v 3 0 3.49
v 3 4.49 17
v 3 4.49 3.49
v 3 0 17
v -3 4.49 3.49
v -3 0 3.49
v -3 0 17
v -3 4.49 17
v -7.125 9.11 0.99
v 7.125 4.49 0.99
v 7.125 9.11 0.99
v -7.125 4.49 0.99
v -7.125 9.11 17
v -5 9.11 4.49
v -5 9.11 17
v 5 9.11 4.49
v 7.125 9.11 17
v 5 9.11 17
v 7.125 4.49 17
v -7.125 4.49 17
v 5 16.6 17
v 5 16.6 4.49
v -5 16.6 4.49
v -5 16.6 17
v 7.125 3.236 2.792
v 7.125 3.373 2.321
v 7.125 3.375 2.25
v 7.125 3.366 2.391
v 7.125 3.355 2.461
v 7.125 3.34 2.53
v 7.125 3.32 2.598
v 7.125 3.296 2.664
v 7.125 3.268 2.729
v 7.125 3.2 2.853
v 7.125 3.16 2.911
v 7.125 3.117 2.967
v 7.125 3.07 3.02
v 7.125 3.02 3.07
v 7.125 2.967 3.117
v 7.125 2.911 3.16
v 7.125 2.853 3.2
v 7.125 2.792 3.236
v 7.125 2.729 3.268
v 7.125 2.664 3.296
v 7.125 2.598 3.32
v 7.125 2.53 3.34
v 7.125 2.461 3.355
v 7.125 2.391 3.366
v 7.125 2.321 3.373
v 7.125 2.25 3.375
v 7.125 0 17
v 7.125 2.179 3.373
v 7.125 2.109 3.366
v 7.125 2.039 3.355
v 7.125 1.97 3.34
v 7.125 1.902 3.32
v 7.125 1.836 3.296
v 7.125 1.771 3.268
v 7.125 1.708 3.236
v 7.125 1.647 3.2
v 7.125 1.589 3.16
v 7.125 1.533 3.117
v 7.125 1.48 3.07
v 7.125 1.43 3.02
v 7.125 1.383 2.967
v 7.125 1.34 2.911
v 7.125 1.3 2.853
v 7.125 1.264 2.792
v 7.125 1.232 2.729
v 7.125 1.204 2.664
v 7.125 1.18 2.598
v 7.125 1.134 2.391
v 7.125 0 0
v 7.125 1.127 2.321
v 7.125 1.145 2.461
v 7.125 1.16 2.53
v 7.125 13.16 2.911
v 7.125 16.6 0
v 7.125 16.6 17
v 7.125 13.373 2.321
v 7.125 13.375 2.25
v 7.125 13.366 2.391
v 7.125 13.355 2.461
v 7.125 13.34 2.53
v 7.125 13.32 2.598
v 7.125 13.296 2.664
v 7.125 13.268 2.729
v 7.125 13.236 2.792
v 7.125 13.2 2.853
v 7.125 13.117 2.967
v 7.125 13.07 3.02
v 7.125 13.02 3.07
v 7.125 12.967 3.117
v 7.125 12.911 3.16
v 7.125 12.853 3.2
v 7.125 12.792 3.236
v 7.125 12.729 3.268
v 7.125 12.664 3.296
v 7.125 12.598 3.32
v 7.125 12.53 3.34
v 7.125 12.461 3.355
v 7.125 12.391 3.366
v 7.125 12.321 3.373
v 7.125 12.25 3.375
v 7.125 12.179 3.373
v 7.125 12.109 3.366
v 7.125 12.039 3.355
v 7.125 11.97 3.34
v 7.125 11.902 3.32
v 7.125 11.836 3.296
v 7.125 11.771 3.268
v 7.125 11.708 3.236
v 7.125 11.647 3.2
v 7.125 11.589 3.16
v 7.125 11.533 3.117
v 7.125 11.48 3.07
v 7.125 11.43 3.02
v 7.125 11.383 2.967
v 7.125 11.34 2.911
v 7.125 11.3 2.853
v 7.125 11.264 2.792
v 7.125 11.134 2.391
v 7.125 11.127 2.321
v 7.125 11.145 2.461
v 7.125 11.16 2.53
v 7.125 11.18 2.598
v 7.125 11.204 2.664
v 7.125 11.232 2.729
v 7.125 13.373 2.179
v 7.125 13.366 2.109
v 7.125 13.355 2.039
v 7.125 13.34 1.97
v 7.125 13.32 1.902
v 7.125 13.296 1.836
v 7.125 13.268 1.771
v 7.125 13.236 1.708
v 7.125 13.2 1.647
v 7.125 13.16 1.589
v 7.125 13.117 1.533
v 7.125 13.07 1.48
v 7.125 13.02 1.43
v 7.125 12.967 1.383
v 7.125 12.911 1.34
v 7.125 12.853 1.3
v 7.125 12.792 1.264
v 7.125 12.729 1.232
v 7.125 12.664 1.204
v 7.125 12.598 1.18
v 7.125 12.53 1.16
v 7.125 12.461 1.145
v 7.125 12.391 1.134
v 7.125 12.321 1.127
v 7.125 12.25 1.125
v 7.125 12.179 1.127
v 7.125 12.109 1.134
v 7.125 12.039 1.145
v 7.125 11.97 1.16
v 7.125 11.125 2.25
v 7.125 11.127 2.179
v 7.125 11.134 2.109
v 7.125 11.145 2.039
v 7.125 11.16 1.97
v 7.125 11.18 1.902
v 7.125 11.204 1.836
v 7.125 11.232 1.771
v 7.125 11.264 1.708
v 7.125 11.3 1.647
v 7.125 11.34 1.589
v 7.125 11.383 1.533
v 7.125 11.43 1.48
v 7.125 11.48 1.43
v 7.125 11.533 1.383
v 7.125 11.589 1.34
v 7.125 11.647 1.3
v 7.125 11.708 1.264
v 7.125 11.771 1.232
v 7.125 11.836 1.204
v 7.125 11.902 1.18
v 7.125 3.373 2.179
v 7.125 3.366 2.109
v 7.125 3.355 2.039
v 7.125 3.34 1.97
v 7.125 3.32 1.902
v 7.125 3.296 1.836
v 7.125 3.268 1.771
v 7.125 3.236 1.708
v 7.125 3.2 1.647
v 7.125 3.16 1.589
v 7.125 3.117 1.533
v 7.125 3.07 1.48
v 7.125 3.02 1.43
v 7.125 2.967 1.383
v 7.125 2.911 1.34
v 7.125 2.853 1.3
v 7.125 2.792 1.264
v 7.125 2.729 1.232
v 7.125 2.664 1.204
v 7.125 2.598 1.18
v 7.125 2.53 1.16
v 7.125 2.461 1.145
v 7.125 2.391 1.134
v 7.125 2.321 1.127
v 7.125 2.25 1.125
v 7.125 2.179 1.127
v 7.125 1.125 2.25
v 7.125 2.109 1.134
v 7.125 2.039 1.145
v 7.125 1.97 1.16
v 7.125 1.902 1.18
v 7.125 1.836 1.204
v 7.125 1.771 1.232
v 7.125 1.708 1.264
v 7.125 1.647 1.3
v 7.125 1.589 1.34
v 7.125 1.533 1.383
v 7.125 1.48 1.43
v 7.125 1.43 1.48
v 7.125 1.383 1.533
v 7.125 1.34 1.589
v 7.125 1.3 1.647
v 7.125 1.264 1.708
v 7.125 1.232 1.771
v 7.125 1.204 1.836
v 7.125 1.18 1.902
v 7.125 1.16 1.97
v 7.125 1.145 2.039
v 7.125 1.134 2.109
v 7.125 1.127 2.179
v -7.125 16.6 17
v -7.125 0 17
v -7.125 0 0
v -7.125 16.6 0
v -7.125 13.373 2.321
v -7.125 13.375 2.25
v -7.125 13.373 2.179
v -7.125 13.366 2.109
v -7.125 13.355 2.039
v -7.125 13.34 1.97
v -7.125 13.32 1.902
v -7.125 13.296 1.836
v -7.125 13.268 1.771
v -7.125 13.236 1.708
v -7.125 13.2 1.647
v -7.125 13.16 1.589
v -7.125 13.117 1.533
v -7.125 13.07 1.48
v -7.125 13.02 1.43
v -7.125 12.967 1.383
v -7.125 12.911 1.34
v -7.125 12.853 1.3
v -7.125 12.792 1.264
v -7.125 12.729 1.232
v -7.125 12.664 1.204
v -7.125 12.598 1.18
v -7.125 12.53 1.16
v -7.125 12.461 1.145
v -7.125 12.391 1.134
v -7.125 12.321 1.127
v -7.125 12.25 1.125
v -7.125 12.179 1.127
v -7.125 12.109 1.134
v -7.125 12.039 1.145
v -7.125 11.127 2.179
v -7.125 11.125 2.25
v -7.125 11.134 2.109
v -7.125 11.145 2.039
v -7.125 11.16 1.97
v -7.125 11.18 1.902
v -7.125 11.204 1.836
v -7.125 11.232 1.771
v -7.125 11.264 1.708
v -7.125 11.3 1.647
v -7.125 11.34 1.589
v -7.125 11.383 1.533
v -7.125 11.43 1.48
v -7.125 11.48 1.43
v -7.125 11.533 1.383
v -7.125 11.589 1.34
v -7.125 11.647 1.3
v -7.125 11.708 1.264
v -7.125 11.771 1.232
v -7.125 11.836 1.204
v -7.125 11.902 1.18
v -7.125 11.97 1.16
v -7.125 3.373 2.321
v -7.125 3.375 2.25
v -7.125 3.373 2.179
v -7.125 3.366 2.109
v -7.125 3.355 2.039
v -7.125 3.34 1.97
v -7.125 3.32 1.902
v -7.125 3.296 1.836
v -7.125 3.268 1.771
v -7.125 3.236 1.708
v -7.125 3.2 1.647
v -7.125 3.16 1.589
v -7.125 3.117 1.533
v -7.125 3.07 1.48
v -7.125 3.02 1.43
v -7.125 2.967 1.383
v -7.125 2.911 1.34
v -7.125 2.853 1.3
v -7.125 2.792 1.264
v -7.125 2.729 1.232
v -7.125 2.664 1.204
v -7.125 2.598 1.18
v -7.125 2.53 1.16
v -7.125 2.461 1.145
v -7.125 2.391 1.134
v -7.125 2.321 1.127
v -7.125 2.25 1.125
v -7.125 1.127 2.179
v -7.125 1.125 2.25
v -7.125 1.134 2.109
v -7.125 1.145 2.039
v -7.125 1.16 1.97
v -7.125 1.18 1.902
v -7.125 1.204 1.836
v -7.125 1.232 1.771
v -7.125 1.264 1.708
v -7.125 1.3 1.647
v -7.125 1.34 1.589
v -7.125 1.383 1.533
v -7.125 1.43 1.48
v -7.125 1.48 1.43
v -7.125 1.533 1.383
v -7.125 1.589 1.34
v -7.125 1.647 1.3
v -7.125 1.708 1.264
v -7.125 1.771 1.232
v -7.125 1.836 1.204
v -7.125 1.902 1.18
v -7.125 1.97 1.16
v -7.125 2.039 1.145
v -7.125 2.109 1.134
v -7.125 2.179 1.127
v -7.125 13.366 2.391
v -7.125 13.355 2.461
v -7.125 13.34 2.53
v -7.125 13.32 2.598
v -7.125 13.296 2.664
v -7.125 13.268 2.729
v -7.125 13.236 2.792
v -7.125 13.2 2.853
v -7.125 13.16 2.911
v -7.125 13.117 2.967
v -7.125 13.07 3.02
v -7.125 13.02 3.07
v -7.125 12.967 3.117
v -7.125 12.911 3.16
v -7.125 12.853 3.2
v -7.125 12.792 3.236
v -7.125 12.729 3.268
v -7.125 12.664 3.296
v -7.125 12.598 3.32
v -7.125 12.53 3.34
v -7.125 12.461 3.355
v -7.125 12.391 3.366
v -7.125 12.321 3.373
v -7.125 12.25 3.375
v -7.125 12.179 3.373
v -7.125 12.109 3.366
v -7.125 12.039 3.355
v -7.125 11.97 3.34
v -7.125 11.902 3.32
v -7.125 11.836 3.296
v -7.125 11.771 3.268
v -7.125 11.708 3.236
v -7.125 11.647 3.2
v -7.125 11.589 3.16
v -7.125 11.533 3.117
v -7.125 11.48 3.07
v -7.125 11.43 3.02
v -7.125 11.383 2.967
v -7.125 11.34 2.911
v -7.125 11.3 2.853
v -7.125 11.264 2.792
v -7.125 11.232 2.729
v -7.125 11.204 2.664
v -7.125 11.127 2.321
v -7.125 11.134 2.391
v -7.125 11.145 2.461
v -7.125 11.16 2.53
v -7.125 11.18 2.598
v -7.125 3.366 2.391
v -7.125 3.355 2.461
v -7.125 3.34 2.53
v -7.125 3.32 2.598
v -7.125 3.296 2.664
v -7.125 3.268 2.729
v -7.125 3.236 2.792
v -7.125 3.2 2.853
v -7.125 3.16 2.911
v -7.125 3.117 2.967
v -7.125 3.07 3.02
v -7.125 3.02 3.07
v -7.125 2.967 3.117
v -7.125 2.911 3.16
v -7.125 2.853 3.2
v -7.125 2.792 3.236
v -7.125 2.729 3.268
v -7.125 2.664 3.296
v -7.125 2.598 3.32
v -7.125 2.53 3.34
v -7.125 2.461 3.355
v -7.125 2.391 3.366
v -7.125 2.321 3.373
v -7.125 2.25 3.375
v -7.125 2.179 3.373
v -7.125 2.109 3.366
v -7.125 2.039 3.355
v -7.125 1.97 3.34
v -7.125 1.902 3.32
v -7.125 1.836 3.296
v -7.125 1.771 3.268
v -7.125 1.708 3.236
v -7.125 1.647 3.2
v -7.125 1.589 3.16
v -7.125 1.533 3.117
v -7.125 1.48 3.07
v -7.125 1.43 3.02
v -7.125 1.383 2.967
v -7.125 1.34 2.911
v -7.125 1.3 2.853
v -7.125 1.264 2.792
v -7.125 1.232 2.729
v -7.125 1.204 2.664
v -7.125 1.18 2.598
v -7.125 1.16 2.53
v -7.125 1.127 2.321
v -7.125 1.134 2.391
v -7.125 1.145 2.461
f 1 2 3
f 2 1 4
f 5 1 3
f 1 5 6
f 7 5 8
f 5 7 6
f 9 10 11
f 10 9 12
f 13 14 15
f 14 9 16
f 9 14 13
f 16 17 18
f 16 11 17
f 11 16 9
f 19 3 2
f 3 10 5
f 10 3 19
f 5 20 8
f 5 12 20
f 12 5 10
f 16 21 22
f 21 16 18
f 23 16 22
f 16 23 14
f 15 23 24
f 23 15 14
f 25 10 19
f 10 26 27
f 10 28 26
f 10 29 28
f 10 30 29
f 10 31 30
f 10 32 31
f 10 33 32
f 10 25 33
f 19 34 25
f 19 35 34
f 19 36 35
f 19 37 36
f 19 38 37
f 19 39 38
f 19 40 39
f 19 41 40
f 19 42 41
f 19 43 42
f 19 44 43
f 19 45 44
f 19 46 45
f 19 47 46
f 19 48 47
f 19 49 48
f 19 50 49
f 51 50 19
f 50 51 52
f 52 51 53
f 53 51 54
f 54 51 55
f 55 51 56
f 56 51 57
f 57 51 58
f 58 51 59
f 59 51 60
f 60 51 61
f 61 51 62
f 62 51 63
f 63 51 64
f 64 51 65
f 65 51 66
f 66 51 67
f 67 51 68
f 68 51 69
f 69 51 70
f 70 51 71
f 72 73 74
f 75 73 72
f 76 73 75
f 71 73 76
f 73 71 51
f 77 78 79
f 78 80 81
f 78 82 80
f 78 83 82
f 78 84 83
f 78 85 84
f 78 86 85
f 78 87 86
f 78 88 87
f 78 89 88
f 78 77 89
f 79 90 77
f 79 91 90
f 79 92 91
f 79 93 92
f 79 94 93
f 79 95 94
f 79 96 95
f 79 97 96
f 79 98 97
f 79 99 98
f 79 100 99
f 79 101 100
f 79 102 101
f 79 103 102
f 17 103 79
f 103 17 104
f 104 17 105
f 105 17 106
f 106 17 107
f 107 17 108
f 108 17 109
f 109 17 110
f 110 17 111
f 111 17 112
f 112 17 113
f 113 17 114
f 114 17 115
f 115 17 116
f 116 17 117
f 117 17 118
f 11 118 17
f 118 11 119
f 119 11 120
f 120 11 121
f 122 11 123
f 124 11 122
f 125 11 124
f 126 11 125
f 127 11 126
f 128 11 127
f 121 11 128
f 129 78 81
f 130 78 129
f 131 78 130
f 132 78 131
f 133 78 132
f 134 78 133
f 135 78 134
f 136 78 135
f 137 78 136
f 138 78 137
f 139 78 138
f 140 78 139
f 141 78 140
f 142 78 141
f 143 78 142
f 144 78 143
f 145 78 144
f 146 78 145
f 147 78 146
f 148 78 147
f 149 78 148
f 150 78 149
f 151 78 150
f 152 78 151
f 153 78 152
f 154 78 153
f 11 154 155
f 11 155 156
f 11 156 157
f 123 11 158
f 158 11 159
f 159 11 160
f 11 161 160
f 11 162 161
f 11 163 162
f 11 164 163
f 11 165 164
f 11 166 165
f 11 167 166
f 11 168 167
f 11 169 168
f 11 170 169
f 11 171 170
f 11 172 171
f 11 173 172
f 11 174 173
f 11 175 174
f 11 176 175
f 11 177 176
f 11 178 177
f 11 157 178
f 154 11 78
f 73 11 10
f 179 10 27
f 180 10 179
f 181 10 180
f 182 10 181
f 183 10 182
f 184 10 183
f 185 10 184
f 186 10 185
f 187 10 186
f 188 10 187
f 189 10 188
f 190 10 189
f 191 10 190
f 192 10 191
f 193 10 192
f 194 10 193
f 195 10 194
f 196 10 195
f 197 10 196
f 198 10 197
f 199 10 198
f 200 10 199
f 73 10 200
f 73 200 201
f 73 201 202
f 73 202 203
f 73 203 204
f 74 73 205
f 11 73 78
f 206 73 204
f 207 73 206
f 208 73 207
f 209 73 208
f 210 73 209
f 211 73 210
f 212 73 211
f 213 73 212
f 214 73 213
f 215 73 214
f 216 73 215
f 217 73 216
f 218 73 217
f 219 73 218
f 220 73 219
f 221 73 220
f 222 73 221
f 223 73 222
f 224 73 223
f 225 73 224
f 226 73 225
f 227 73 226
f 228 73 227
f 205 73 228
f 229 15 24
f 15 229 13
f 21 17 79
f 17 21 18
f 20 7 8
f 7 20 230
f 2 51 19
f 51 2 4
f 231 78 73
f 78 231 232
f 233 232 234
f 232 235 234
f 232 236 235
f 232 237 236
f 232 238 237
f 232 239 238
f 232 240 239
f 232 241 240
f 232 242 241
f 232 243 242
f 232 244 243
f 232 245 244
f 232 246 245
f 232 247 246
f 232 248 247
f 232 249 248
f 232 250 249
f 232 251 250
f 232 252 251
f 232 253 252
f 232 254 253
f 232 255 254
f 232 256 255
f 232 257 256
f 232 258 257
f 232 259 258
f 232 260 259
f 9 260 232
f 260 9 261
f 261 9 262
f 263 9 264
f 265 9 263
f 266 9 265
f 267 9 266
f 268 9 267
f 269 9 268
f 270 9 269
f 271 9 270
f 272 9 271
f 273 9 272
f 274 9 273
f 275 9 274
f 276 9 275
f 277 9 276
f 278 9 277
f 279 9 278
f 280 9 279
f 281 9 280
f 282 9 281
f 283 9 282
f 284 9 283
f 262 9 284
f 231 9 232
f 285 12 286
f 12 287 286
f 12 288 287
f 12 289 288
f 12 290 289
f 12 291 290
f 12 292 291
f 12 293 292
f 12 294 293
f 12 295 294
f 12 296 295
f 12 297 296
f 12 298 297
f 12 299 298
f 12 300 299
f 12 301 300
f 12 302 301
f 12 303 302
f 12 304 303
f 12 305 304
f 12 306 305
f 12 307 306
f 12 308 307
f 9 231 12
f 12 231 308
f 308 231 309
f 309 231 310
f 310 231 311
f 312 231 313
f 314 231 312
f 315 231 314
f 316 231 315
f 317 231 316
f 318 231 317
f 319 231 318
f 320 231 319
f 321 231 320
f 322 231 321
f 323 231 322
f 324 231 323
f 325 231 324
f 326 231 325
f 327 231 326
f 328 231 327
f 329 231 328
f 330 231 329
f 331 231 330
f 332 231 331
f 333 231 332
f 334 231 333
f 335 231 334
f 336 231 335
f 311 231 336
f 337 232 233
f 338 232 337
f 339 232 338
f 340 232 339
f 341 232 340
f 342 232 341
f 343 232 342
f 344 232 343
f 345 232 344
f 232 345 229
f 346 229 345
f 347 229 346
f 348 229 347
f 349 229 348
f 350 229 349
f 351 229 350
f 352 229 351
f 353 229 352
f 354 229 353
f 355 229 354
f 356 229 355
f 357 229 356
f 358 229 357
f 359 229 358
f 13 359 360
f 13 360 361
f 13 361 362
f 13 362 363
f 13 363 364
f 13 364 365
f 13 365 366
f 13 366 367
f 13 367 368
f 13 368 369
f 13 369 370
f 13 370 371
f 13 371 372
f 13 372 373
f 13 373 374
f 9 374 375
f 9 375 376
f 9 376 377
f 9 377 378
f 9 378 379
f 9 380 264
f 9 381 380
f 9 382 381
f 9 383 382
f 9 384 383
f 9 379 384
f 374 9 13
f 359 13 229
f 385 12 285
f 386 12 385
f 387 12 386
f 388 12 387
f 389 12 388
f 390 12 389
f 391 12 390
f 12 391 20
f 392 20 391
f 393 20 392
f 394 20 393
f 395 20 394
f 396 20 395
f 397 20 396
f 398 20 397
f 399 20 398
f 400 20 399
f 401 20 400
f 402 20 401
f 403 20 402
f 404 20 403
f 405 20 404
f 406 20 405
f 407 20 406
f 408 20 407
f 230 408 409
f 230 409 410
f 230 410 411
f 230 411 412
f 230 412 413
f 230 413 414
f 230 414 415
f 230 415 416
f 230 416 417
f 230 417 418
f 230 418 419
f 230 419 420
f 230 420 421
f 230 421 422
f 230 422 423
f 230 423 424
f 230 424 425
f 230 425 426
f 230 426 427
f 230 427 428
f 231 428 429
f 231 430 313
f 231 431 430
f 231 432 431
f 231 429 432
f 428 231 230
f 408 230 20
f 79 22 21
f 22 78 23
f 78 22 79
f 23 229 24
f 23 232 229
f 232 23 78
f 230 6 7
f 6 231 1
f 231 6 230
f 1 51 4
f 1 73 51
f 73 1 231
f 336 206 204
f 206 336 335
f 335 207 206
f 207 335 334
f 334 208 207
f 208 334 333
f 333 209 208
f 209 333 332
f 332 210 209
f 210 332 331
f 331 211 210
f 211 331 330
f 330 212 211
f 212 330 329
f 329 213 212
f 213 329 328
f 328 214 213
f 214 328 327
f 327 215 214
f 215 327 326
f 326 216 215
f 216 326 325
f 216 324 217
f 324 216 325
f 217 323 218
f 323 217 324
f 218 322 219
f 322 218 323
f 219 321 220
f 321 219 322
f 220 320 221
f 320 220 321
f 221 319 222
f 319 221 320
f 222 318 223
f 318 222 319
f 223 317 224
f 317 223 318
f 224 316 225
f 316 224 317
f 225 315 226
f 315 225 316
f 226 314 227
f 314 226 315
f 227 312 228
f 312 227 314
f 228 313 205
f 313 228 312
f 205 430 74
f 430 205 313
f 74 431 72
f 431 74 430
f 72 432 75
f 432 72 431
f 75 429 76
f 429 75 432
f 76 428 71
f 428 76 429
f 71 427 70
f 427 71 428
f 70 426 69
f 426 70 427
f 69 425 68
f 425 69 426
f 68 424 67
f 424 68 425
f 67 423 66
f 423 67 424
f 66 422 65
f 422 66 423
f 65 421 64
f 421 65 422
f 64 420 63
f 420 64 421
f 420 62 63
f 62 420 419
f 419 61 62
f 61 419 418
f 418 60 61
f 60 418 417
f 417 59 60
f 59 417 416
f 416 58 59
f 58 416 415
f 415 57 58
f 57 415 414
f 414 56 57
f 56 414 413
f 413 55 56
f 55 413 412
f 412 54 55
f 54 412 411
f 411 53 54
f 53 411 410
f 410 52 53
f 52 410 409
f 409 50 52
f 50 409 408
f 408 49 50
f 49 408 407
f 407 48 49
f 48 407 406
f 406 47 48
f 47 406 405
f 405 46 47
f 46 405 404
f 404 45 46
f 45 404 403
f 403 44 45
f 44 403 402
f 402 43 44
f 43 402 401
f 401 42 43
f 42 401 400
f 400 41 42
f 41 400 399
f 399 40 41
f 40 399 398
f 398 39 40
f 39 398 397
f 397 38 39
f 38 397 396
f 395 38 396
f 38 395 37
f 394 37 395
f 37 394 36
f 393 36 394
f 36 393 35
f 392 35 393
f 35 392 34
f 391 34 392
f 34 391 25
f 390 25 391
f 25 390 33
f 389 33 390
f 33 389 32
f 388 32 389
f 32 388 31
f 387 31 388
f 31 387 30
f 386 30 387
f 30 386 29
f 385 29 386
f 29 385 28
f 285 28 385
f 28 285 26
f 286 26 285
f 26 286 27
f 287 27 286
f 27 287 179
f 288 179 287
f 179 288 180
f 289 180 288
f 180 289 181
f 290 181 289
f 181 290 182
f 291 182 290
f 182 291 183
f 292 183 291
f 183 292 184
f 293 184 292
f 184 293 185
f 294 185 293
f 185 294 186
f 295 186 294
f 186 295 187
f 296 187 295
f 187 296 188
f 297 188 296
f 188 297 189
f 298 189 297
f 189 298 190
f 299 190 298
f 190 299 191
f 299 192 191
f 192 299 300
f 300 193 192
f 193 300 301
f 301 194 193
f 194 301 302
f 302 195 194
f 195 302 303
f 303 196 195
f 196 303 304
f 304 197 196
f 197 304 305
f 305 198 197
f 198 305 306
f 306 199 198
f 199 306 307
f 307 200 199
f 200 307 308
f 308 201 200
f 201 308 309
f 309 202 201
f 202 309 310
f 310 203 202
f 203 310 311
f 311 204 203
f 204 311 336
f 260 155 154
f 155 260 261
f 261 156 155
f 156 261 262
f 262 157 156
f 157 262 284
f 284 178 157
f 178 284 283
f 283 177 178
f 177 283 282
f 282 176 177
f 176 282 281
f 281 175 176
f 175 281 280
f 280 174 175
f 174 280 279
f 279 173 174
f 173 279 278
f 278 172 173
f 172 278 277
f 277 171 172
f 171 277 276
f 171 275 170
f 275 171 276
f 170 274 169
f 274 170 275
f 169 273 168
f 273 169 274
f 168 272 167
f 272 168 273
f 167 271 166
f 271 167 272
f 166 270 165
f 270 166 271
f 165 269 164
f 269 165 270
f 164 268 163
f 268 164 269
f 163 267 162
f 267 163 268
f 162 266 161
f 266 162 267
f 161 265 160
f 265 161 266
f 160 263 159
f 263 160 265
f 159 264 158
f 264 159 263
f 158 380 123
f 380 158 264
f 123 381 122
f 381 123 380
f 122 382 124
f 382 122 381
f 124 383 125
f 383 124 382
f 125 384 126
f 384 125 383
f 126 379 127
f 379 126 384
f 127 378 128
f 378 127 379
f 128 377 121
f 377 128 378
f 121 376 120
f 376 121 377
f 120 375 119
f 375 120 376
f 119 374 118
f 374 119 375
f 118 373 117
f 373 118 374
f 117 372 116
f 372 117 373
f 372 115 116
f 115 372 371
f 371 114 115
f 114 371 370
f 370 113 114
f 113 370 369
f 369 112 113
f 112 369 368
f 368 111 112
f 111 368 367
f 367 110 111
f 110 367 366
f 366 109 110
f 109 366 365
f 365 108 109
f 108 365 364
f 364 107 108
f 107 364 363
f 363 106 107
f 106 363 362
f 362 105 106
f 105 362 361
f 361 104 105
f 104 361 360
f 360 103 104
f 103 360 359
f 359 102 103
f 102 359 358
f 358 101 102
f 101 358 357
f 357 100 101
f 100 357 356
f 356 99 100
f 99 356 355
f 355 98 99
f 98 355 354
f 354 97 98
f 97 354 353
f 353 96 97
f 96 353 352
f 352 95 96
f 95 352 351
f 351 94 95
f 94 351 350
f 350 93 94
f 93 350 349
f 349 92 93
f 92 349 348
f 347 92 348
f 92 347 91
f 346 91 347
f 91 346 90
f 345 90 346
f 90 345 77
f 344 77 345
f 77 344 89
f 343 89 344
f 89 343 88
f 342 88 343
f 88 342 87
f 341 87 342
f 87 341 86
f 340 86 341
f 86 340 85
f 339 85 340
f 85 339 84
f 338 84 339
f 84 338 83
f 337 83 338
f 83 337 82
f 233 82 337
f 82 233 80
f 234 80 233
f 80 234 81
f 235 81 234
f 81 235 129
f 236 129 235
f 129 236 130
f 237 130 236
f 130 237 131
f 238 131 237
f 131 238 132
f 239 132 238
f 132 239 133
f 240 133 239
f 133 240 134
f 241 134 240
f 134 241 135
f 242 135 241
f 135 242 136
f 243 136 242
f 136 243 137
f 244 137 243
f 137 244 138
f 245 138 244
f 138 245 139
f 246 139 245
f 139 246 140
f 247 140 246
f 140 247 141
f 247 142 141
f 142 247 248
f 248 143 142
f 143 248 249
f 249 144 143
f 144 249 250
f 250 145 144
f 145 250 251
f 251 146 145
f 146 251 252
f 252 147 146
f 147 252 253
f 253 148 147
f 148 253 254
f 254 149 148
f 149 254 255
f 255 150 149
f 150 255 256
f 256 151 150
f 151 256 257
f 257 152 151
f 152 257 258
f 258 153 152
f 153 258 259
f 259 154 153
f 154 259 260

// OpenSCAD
/********************************************************
 * HDZero Lux Camera Harness - vsergeev
 * https://github.com/vsergeev/3d-parametric-whoop
 * CC-BY-4.0
 * v1.0
 ********************************************************/

camera_xyz_segments = [[6, 4.5, 3.5], [14.5, 4.6, 1], [10, 7.5, 4.5]];

harness_x_width = 14.25;
harness_y_length = camera_xyz_segments[0].y + camera_xyz_segments[1].y + camera_xyz_segments[2].y;
harness_z_height = 17;
mount_hole_xy_diameter = 2.25;
mount_hole_y_pitch = 10;

/* [Hidden] */

overlap_epsilon = 0.01;

$fn = 100;

/******************************************************************************/
/* 2D Profiles */
/******************************************************************************/

module mounting_hole_yz_footprint() {
    mount_hole_y_offset = camera_xyz_segments[0].y / 2;

    union() {
        translate([-mount_hole_y_offset, mount_hole_xy_diameter])
            circle(d=mount_hole_xy_diameter);

        translate([-mount_hole_y_offset - mount_hole_y_pitch, mount_hole_xy_diameter])
            circle(d=mount_hole_xy_diameter);
    }
}

/******************************************************************************/
/* 3D Extrusions */
/******************************************************************************/

module camera_slot() {
    segment_offsets = [ for (i = 0, o = 0; i < len(camera_xyz_segments); i = i + 1,  o = o + camera_xyz_segments[i - 1].y) o];

    union() {
        for (i = [0:len(camera_xyz_segments) - 1]) {
            translate([-camera_xyz_segments[i].x / 2, segment_offsets[i] - overlap_epsilon, camera_xyz_segments[i].z - overlap_epsilon])
                 cube([camera_xyz_segments[i].x, camera_xyz_segments[i].y + 2 * overlap_epsilon, harness_z_height - camera_xyz_segments[i].z + 2 * overlap_epsilon]);
        }
    }
}

module harness() {
    difference() {
        /* Base */
        translate([0, harness_y_length / 2, harness_z_height / 2])
            cube([harness_x_width, harness_y_length, harness_z_height], center=true);

        /* Camera Slot */
        camera_slot();

        /* Mounting Holes */
        rotate([90, 0, -90])
            translate([0, 0, -harness_x_width])
                linear_extrude(harness_x_width * 2, convexity=2)
                    mounting_hole_yz_footprint();
    }
}

/******************************************************************************/
/* Top Level */
/******************************************************************************/

harness();
